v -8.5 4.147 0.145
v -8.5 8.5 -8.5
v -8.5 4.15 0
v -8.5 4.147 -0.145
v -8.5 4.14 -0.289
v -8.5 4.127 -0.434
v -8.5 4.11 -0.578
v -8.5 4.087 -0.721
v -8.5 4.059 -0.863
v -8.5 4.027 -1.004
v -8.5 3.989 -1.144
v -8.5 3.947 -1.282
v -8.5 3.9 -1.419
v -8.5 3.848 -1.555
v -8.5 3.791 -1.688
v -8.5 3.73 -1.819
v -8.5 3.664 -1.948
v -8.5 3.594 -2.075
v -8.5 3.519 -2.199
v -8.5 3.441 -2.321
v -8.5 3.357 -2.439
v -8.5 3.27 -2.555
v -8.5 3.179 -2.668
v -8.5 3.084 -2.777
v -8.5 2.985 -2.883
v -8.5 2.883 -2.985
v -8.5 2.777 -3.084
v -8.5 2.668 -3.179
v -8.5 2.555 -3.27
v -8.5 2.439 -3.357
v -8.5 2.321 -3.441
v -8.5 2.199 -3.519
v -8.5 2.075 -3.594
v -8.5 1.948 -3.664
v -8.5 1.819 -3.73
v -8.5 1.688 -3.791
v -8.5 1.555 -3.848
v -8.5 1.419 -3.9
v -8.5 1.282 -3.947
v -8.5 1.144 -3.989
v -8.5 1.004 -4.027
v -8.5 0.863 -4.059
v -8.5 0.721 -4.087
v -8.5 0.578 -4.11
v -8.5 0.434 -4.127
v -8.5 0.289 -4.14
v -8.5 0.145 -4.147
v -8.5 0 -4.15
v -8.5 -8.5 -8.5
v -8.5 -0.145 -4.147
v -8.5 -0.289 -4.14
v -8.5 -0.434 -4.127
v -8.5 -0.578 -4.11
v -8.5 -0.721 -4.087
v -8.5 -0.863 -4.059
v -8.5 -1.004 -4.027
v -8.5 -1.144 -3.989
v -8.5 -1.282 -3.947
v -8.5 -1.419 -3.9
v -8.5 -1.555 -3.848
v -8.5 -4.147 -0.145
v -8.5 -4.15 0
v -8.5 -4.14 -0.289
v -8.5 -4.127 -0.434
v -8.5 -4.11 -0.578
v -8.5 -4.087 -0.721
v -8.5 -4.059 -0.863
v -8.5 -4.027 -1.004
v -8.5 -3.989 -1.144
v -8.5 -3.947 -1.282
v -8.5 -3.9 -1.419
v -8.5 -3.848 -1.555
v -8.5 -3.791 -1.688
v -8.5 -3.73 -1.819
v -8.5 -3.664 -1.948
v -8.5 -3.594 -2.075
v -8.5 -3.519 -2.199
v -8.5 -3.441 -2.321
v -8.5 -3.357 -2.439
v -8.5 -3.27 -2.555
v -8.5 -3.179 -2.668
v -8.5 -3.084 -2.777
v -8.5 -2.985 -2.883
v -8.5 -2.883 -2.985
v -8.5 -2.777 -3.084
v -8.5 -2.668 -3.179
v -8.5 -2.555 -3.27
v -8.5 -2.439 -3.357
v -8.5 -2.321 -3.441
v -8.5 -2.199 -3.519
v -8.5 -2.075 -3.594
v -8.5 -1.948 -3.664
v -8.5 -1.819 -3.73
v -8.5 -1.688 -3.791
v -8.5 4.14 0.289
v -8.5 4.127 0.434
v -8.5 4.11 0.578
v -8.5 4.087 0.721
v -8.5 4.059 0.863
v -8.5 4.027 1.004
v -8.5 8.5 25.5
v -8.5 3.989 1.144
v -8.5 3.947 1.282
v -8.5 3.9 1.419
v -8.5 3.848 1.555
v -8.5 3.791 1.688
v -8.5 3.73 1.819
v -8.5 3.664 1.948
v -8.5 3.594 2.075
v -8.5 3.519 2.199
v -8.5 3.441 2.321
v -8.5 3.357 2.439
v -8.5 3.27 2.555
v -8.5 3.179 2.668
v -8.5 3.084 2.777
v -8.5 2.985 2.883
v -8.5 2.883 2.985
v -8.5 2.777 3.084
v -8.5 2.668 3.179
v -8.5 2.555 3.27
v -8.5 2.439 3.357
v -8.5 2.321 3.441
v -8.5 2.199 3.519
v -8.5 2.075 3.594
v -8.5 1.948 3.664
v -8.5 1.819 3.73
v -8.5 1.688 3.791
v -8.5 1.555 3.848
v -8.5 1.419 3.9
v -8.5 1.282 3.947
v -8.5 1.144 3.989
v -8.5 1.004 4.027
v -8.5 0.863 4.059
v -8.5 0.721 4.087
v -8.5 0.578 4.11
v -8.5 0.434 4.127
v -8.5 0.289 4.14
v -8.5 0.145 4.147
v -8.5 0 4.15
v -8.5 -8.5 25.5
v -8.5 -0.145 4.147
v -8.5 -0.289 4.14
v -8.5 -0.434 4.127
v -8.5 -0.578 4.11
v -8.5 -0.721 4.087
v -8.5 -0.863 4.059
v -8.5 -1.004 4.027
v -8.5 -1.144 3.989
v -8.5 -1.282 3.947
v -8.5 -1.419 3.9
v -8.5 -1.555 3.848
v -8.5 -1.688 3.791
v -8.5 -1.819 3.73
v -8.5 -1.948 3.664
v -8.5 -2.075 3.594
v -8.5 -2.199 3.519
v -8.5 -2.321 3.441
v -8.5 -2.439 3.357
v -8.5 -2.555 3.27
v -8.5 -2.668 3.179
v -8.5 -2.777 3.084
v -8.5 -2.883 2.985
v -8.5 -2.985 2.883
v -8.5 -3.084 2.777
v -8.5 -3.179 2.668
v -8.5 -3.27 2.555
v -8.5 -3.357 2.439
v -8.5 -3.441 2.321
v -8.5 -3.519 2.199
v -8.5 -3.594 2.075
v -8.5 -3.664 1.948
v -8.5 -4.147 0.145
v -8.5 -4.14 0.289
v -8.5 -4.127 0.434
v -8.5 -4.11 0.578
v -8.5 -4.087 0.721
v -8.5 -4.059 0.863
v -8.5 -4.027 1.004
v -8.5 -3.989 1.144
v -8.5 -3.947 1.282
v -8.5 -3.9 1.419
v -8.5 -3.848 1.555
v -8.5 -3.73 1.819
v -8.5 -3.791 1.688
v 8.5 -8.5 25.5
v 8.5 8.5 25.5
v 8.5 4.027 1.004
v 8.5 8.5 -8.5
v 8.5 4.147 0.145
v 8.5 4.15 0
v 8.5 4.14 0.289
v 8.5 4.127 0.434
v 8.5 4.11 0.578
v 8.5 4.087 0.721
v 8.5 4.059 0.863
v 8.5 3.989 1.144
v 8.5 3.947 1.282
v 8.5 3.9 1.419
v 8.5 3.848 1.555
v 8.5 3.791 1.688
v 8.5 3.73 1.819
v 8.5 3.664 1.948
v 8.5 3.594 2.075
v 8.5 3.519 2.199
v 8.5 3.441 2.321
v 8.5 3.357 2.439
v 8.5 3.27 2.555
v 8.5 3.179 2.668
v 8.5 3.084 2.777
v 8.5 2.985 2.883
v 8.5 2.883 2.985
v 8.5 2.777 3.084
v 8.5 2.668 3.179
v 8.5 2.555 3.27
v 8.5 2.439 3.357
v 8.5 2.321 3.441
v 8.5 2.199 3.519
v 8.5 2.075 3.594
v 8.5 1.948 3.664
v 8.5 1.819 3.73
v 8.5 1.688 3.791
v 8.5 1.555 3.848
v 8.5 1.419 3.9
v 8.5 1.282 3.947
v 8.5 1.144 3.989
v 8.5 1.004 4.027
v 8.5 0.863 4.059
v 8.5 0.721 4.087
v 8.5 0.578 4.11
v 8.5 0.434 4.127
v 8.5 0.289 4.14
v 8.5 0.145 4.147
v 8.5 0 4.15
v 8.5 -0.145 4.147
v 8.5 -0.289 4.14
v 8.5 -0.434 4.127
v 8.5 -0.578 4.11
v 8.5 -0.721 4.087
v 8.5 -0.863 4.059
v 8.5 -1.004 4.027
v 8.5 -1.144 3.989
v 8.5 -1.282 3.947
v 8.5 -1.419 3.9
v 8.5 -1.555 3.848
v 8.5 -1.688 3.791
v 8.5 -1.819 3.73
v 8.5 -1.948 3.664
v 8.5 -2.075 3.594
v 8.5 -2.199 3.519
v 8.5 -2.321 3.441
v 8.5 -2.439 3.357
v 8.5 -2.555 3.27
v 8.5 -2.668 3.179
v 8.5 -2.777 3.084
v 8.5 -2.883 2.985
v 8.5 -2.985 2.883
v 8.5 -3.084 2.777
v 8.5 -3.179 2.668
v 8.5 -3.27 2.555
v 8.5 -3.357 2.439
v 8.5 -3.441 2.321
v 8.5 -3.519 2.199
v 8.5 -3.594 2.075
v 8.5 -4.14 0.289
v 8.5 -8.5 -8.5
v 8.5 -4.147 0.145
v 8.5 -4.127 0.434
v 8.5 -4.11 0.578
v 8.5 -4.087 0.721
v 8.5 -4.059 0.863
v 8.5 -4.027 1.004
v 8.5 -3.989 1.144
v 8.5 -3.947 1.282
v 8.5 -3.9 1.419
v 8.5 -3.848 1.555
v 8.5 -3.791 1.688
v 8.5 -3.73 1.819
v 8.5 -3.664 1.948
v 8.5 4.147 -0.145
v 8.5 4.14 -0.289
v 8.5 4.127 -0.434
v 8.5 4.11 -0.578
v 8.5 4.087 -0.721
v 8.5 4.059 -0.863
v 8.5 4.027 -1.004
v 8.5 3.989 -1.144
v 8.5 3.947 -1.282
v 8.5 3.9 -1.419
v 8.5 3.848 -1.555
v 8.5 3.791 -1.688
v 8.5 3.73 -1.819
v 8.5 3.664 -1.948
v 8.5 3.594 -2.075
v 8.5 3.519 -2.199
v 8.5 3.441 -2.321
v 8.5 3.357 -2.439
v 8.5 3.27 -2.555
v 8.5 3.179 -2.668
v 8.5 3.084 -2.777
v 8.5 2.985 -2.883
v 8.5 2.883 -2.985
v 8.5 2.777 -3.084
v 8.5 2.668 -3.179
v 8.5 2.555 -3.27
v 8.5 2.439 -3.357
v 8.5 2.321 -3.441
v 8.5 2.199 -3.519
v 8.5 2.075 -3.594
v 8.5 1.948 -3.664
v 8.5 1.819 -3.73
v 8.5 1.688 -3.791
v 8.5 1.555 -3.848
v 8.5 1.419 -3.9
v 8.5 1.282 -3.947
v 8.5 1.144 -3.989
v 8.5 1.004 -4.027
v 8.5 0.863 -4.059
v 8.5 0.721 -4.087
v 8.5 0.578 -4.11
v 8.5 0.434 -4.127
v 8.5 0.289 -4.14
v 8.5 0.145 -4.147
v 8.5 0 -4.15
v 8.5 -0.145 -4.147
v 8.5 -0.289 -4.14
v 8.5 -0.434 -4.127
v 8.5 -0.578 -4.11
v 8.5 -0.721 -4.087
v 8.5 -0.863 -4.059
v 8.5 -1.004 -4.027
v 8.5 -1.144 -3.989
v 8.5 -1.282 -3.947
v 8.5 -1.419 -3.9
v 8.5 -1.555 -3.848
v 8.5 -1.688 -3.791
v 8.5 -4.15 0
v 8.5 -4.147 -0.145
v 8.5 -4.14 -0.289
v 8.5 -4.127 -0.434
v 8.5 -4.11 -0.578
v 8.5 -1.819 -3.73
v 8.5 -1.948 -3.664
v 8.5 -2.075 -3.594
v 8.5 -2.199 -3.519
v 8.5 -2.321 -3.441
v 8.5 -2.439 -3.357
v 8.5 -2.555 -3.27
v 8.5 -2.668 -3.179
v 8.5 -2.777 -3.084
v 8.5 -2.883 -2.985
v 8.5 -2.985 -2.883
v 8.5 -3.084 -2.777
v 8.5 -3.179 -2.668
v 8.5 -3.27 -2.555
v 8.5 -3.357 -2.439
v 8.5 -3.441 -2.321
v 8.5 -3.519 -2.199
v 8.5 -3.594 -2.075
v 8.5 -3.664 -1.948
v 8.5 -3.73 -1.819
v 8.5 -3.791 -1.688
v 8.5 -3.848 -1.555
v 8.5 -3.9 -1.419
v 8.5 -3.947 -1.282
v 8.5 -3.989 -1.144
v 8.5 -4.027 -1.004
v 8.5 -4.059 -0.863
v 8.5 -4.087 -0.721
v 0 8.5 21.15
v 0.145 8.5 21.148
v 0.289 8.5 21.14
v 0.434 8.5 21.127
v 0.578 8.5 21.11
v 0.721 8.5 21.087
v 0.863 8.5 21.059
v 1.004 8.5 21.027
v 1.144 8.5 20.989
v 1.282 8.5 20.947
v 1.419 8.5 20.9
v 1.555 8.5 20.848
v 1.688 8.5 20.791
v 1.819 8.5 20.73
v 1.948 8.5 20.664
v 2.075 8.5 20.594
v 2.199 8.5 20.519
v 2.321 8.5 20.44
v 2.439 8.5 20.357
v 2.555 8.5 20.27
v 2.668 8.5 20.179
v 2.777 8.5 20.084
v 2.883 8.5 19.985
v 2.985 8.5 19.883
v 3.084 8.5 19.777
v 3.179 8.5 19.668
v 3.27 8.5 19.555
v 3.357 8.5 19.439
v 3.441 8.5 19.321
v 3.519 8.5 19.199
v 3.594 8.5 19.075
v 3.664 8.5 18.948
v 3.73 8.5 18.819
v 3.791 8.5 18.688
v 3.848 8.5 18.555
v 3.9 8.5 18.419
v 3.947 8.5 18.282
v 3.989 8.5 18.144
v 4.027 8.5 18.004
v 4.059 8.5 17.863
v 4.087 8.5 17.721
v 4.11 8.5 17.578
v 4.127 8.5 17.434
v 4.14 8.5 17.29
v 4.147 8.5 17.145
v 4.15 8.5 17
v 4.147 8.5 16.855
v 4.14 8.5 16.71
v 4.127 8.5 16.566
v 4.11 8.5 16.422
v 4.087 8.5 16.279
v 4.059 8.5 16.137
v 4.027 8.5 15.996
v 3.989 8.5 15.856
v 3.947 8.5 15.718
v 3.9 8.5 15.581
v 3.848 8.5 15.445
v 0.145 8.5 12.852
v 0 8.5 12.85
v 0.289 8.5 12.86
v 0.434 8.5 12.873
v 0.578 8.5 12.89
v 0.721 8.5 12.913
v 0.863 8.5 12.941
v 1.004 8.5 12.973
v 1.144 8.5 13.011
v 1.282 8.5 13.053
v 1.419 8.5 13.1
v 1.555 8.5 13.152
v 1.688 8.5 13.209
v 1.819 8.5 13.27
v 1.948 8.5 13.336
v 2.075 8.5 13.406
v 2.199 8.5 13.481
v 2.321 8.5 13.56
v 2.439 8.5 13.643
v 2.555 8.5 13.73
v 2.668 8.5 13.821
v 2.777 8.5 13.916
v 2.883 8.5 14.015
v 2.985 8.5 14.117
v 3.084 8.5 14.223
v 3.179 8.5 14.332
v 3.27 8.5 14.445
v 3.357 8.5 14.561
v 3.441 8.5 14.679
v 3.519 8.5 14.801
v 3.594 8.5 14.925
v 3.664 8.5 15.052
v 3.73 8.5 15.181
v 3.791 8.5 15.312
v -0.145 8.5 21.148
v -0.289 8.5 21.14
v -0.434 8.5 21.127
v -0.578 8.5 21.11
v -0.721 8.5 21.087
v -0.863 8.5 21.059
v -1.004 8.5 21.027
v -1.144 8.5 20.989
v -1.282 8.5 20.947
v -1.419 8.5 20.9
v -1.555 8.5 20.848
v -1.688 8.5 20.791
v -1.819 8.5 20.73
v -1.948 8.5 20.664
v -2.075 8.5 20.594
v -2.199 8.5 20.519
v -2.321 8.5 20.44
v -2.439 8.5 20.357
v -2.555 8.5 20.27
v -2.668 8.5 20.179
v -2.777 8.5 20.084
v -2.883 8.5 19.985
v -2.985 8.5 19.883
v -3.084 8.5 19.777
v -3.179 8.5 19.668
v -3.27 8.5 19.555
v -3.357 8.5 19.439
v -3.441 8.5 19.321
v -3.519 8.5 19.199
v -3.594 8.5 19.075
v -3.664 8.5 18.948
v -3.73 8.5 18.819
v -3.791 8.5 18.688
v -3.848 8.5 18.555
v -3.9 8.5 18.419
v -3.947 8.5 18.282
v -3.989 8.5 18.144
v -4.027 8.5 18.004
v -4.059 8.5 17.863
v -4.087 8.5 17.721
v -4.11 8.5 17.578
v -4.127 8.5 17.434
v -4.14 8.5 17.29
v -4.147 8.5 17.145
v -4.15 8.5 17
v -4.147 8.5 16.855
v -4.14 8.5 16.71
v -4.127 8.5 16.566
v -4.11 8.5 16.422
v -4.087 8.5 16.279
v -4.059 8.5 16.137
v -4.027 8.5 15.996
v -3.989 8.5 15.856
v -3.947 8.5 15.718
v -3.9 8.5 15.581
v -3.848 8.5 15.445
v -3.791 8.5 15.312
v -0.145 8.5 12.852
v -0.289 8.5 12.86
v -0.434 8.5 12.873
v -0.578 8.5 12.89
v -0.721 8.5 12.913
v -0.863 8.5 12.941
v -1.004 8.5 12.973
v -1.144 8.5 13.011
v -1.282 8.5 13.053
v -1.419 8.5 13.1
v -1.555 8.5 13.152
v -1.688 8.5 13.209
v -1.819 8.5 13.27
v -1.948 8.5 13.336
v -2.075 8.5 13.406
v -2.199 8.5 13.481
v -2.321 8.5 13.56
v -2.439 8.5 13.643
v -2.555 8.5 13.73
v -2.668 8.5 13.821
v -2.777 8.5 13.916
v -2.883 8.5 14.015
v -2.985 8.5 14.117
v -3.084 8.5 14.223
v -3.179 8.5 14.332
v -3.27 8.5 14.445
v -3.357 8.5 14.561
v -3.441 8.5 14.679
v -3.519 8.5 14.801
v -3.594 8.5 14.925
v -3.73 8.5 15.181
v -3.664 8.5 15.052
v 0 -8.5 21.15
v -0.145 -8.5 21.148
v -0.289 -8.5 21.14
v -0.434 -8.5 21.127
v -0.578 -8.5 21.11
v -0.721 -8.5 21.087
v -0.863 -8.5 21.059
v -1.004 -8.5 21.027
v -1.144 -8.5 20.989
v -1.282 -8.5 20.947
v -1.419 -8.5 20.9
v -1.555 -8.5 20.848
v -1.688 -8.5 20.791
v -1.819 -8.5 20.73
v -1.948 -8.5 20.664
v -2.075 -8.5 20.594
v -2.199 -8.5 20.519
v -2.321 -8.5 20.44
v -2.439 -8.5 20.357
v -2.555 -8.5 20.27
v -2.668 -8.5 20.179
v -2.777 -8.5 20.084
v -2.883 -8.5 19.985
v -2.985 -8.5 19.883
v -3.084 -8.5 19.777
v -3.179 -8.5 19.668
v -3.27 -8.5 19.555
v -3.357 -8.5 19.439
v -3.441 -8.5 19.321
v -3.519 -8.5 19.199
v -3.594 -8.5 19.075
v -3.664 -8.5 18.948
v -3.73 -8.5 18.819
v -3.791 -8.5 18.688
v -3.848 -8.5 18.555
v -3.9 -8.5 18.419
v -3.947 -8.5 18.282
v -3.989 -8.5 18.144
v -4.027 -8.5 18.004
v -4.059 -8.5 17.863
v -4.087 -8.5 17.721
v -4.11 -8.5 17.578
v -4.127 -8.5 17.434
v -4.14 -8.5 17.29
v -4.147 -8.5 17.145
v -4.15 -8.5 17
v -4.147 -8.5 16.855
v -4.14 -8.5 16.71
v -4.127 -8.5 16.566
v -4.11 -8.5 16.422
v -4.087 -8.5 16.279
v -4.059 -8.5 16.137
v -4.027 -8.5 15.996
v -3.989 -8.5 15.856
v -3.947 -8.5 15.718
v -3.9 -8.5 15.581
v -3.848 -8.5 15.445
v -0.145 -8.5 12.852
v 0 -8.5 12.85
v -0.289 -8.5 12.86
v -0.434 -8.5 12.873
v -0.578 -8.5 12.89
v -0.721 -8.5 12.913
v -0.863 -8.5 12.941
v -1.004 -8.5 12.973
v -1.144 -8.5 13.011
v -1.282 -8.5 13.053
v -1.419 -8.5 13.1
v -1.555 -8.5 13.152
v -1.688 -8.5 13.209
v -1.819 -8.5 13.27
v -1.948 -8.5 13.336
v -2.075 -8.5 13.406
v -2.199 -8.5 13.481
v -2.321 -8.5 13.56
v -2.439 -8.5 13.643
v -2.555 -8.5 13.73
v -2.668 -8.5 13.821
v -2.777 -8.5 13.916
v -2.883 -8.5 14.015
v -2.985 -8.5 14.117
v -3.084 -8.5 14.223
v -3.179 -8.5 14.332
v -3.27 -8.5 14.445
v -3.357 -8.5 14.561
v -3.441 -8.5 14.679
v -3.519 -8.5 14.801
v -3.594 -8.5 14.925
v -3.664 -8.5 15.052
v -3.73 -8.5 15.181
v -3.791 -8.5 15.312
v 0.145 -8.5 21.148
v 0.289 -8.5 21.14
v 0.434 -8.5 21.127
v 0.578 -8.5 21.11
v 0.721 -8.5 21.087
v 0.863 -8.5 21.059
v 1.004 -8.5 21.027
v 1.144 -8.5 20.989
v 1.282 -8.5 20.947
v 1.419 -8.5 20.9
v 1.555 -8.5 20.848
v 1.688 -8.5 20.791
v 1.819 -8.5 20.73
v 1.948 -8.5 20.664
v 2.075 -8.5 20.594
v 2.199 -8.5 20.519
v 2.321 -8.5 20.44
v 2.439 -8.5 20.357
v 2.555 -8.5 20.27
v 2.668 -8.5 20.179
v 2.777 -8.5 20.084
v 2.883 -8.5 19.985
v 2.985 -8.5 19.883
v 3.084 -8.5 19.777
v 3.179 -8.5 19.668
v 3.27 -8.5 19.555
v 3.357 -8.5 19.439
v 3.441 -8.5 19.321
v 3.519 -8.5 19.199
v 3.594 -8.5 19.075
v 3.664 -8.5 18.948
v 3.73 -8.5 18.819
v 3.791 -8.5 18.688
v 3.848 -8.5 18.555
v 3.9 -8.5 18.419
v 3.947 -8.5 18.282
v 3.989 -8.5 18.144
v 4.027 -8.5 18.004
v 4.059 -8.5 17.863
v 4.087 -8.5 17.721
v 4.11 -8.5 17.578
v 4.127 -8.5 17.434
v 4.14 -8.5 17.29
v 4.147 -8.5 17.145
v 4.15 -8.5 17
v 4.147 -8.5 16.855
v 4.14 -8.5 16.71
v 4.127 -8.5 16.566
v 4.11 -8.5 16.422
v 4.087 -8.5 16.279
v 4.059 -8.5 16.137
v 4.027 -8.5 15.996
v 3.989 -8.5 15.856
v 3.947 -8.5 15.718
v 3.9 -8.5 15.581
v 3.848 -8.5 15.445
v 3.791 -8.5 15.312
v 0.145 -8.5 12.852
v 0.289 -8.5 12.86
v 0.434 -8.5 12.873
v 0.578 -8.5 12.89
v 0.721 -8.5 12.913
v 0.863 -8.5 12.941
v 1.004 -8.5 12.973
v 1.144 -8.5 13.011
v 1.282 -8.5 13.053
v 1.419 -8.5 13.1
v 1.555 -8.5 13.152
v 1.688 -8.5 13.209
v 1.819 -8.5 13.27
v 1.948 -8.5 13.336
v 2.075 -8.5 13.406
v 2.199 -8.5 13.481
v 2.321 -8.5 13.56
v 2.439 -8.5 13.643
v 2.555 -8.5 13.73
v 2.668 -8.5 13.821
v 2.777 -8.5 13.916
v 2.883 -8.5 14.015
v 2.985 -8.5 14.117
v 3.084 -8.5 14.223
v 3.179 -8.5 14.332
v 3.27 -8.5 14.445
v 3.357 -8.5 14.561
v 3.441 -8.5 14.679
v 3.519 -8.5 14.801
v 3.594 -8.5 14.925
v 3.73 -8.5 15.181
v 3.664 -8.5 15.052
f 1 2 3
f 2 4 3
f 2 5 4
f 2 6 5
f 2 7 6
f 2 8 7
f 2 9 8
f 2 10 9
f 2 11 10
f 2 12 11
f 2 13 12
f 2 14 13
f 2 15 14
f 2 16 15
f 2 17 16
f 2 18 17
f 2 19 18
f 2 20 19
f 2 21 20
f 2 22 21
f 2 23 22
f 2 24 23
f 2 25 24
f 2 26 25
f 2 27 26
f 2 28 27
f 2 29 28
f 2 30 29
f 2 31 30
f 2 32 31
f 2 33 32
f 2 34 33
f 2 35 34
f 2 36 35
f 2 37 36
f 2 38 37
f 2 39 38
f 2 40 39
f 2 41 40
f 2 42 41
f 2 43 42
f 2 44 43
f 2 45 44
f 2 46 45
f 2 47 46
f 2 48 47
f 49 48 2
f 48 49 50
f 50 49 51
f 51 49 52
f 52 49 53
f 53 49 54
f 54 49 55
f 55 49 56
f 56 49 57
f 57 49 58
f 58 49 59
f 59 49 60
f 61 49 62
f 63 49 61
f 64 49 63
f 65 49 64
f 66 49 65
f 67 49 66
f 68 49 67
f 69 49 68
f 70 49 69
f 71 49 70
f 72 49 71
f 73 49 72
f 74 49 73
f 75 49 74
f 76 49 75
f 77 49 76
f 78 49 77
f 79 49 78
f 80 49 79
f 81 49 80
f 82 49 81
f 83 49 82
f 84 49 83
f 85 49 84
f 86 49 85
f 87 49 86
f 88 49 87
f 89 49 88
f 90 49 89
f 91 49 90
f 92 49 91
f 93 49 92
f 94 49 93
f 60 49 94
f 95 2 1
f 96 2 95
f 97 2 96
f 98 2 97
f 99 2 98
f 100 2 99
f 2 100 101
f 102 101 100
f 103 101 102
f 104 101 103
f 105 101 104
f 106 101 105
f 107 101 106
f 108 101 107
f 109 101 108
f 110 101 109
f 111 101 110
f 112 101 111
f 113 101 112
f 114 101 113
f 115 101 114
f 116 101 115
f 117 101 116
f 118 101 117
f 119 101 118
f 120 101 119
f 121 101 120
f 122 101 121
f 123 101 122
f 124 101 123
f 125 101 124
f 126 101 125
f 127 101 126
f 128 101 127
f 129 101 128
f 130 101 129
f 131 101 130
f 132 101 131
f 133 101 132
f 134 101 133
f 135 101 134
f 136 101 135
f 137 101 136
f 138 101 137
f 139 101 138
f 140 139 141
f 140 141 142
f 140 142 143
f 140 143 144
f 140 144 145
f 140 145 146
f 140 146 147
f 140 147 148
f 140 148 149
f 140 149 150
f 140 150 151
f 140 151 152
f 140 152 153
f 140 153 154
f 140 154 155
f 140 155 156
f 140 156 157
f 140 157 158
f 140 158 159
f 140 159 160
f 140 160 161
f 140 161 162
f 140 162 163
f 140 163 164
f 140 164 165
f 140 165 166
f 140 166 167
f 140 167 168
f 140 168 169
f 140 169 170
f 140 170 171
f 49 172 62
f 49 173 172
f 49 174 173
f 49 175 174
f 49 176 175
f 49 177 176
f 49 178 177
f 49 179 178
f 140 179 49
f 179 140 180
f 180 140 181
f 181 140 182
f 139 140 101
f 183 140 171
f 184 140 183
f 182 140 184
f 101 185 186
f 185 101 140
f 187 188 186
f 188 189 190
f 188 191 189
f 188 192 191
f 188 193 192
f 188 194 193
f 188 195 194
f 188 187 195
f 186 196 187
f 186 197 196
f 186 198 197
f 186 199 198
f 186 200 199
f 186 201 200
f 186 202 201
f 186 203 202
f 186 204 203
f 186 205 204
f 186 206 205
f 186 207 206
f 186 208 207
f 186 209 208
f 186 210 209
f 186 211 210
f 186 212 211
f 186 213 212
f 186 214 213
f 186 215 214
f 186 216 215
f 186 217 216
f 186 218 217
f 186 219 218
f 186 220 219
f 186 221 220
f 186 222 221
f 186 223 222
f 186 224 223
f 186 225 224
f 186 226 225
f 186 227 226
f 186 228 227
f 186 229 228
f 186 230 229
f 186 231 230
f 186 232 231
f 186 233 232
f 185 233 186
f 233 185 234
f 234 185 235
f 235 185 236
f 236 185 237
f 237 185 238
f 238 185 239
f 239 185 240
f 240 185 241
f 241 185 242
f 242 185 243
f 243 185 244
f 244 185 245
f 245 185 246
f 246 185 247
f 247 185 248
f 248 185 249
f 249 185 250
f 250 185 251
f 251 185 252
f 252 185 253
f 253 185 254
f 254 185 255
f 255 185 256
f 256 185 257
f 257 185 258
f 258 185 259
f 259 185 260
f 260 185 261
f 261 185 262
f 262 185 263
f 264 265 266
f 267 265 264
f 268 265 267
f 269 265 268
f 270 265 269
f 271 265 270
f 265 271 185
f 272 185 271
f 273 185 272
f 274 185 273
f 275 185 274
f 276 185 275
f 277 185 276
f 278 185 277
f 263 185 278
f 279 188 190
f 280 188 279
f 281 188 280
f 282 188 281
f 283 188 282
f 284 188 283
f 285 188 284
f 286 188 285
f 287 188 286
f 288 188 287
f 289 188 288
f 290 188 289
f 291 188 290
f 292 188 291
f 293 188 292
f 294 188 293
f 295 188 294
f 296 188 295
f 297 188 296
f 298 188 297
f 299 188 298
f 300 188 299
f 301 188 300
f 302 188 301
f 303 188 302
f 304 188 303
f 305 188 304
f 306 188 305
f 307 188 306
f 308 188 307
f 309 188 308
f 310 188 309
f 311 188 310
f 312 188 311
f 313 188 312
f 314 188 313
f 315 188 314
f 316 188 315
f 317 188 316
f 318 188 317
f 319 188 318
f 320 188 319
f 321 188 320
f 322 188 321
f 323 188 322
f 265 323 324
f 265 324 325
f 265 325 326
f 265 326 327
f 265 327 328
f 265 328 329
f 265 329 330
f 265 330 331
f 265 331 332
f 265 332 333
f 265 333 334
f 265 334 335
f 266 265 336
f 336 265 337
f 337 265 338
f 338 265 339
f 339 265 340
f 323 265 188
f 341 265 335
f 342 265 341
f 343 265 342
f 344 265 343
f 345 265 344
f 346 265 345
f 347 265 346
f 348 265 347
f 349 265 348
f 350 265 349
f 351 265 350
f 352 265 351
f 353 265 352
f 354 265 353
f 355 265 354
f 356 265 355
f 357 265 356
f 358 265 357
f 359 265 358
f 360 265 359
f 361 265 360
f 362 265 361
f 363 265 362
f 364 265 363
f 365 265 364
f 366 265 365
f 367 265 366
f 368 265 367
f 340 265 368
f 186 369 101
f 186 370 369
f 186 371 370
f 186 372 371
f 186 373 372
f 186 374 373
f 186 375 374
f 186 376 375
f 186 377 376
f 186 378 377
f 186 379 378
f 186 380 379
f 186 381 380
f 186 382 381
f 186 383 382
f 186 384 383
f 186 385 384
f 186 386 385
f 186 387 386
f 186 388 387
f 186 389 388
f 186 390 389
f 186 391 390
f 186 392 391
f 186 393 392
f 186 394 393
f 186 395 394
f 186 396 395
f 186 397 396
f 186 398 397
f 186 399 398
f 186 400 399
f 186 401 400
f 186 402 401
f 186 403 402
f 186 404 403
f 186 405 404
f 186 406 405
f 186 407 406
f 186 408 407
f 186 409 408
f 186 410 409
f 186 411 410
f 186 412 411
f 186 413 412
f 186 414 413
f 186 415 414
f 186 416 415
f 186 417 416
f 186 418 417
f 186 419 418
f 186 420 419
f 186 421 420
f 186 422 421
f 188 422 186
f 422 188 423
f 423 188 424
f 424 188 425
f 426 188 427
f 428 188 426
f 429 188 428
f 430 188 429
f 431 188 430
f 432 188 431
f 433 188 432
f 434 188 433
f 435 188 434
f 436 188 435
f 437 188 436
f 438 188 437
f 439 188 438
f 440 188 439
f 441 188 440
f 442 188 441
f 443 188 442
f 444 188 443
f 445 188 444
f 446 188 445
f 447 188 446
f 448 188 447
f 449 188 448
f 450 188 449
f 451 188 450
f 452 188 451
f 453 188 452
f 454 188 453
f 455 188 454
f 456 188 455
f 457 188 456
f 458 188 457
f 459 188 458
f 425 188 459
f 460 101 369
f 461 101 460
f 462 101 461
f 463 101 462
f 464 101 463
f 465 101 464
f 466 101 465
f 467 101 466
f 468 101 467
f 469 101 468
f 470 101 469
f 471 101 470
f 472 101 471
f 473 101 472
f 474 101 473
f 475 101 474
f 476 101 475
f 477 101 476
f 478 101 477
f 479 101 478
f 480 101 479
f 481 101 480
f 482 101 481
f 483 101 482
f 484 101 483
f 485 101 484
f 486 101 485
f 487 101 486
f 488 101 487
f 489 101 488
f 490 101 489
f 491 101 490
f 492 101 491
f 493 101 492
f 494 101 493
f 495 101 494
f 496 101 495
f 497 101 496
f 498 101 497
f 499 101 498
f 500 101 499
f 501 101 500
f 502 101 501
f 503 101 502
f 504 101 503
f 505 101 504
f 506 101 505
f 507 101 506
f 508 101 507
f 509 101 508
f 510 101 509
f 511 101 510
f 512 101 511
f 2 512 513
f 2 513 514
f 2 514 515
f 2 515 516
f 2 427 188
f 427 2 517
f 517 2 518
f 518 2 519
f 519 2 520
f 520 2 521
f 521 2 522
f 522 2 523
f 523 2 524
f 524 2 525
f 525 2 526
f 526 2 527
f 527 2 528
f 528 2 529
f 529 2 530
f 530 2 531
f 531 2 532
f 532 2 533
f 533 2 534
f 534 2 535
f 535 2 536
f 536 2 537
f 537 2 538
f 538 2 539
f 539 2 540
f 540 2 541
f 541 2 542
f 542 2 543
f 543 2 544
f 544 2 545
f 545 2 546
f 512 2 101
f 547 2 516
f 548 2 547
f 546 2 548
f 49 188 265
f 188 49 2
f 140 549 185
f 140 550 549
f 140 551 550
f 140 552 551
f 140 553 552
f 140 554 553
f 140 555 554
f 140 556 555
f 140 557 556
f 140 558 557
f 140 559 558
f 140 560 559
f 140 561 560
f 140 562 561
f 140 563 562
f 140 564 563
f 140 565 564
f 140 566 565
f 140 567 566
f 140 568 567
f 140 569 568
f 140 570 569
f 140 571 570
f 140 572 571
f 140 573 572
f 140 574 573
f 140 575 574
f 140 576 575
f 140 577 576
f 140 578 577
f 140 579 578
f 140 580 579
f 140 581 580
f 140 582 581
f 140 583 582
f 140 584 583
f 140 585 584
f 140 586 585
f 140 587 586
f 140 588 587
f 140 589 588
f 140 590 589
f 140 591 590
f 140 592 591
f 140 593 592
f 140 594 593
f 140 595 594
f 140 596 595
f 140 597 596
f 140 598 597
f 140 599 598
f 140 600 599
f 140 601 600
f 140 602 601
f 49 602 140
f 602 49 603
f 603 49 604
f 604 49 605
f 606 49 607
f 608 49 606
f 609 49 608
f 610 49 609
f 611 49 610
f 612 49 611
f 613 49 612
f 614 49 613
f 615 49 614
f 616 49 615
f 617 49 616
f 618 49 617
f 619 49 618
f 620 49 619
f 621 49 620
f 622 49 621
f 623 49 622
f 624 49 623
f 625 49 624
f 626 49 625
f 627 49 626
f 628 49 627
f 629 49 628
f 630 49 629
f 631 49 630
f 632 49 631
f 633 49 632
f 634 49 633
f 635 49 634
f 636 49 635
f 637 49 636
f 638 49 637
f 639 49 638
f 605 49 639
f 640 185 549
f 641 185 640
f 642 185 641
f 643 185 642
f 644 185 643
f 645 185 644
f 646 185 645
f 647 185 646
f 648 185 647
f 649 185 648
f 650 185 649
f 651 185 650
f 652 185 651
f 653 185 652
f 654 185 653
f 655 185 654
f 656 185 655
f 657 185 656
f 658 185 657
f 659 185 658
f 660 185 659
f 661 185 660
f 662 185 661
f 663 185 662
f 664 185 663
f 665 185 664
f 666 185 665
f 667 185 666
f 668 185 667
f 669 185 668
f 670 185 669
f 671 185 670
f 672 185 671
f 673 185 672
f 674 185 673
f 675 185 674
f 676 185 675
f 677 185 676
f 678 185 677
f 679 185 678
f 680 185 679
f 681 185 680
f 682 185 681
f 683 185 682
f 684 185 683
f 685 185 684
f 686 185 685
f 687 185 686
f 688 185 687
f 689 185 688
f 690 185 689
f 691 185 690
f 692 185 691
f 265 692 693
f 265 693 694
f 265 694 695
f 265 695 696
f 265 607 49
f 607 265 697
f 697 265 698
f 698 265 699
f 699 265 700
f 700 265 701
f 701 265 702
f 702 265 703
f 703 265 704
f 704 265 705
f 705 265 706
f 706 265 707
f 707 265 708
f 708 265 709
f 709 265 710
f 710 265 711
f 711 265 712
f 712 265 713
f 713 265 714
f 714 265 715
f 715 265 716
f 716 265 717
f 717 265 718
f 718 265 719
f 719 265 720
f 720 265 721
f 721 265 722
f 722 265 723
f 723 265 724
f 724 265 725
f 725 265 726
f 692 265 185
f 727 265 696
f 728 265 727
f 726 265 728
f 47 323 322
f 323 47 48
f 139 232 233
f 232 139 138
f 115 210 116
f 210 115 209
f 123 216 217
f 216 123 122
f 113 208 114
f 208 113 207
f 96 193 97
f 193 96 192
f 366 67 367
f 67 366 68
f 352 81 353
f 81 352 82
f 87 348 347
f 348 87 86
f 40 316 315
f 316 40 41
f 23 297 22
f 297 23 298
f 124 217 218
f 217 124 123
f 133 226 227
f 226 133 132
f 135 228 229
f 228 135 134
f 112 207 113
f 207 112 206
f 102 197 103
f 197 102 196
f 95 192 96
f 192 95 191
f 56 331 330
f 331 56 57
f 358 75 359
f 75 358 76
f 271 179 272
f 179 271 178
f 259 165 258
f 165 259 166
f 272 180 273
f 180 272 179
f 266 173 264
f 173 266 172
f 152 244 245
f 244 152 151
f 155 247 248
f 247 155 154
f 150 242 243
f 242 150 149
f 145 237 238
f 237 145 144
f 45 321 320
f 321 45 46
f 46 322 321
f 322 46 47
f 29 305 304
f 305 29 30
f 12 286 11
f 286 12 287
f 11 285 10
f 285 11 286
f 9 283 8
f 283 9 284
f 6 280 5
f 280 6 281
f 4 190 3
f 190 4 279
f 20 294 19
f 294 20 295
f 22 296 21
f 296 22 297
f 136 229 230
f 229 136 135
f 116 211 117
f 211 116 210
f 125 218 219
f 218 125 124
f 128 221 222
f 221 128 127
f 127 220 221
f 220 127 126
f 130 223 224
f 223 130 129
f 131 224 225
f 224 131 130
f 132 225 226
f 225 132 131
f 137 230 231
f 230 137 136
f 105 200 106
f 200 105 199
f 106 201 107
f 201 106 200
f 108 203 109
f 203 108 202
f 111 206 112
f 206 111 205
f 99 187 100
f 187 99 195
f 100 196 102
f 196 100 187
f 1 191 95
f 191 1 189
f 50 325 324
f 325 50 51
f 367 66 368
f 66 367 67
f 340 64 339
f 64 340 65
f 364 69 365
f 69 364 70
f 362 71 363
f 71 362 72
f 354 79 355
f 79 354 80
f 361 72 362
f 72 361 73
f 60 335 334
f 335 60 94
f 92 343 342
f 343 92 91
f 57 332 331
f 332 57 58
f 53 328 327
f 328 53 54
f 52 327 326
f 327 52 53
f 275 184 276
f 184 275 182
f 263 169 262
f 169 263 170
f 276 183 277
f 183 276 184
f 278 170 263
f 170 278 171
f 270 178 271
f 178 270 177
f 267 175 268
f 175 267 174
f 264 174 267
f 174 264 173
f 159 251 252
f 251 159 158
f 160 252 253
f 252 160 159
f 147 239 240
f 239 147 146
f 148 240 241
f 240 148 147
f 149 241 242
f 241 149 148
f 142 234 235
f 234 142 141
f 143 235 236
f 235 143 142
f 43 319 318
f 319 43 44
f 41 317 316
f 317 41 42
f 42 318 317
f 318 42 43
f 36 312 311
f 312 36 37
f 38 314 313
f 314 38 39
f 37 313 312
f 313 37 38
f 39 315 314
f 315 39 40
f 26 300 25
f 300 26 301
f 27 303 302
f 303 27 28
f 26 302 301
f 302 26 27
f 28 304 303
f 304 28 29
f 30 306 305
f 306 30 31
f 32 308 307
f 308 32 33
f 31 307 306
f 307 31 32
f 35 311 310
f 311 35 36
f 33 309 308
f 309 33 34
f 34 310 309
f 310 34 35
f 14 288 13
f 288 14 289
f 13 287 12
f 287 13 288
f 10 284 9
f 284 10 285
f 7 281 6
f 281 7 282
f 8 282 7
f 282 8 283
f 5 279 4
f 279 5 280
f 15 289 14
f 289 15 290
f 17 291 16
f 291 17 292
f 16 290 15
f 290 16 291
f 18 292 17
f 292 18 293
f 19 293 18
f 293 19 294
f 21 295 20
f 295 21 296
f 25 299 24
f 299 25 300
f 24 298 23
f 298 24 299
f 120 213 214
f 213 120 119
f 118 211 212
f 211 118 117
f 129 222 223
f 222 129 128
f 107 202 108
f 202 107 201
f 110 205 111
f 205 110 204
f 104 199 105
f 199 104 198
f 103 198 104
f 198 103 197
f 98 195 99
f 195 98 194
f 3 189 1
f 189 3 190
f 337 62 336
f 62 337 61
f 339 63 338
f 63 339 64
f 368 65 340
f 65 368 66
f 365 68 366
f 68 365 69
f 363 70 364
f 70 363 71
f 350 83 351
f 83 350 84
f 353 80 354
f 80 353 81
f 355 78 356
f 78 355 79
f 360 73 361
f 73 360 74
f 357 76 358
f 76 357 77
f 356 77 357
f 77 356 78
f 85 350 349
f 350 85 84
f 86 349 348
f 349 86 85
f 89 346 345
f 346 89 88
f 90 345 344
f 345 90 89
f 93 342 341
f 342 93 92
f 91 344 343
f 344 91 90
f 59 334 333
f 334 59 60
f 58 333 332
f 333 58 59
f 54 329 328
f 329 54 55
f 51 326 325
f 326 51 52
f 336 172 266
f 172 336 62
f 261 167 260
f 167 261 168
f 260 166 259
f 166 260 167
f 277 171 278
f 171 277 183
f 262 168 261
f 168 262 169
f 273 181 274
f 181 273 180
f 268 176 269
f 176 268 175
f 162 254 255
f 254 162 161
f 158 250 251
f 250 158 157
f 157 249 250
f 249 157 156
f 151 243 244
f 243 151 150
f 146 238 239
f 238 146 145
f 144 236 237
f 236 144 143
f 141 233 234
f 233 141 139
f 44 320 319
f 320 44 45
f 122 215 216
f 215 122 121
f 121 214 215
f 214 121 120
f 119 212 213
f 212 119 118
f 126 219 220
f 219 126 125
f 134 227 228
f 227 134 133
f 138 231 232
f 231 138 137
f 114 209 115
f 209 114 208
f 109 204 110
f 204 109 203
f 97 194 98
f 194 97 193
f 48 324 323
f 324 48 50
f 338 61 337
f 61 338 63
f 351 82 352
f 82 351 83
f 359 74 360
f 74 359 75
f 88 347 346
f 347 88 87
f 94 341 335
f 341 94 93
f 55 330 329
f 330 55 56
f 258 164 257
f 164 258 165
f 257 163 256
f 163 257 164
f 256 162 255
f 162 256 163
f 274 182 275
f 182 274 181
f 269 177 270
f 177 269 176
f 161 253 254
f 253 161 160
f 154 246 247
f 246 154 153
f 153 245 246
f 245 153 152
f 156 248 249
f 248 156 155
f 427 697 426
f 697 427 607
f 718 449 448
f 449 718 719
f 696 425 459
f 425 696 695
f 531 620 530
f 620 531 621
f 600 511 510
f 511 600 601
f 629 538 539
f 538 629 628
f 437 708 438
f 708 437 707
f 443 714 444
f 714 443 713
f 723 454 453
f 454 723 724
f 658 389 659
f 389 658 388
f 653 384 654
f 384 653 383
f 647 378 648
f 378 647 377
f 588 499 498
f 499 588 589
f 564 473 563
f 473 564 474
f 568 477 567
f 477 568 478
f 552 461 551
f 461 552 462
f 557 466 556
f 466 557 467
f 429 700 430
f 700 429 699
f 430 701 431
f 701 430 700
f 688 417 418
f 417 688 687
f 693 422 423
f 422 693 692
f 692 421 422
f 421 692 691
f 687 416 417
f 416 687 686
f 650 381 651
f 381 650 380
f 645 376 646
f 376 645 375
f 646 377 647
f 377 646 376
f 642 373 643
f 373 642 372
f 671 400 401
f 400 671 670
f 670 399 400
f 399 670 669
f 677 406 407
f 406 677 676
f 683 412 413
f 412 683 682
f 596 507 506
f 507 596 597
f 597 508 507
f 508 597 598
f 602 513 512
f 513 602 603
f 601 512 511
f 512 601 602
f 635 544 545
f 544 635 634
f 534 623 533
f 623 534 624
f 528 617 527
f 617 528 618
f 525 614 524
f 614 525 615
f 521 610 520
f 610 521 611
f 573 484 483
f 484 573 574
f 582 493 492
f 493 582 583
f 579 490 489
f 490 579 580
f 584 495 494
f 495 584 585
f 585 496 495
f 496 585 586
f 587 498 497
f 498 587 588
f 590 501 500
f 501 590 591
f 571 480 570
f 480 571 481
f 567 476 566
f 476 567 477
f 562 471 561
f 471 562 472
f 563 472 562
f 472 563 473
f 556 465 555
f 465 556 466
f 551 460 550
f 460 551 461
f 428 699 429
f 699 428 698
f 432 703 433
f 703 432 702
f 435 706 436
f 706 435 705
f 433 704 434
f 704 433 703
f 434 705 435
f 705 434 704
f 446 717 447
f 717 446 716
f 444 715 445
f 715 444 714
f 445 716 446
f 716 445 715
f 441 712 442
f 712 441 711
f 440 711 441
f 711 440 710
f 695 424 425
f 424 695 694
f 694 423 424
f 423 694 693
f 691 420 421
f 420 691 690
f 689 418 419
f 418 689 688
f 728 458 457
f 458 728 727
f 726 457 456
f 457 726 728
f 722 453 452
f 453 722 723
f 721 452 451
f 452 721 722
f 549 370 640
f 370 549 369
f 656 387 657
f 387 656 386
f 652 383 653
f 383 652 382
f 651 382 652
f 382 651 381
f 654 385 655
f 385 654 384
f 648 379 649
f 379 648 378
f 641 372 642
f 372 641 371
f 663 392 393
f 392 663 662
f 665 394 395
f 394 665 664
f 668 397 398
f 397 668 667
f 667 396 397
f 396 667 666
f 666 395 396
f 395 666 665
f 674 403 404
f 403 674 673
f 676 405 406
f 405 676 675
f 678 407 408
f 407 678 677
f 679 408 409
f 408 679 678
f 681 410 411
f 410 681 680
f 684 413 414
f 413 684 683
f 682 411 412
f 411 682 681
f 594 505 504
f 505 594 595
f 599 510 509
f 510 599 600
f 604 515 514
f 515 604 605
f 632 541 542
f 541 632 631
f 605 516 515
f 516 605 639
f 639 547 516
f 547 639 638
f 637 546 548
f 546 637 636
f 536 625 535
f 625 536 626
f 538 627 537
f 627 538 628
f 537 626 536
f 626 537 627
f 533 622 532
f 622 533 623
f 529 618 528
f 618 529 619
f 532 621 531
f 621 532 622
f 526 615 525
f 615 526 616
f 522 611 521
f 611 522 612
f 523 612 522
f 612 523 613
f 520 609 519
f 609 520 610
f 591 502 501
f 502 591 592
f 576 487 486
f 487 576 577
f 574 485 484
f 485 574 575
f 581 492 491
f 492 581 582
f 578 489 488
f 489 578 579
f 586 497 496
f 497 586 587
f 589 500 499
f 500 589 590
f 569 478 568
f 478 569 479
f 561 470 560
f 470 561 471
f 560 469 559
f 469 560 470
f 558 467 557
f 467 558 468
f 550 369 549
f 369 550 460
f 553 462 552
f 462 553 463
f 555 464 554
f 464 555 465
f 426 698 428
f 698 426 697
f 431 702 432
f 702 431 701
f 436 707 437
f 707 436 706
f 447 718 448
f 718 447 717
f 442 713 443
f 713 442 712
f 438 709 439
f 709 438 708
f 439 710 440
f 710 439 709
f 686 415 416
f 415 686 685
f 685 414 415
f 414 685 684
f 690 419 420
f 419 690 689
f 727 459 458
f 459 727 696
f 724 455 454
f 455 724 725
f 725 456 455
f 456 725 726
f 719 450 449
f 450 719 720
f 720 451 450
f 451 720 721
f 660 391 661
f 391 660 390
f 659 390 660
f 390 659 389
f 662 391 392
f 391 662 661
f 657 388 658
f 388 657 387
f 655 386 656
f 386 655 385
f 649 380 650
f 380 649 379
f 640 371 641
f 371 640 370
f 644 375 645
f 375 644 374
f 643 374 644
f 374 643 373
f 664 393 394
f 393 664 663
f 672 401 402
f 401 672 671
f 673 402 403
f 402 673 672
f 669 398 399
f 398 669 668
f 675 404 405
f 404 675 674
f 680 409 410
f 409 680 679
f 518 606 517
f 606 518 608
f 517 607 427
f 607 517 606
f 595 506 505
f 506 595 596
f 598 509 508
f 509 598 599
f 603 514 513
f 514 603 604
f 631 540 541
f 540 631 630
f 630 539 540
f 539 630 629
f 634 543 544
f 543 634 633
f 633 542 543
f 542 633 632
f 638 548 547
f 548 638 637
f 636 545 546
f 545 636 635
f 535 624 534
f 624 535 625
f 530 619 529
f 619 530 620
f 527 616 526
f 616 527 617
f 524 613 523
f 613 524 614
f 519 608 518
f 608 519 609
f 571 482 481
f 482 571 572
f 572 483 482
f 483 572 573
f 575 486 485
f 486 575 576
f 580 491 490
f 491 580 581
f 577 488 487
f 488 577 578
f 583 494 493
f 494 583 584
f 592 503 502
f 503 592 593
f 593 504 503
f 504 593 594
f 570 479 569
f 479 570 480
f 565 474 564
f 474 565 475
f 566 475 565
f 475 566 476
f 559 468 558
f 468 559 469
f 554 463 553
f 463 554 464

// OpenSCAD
//cube([120,120,3], center = true);
//translate([-45,-45,0])cylinder(h = 3, r=15, $fn = 180, center = true);




difference(){
translate([0,0,17/2])cube([17,17,17+17], center = true);
rotate([0,90,0]) cylinder(h = 50, d=8+0.3, $fn = 180, center = true);
 
   
    
    
translate([0,0,17])rotate([90,90,0]) cylinder(h = 50, d=8+0.3, $fn = 180, center = true);     
}    
